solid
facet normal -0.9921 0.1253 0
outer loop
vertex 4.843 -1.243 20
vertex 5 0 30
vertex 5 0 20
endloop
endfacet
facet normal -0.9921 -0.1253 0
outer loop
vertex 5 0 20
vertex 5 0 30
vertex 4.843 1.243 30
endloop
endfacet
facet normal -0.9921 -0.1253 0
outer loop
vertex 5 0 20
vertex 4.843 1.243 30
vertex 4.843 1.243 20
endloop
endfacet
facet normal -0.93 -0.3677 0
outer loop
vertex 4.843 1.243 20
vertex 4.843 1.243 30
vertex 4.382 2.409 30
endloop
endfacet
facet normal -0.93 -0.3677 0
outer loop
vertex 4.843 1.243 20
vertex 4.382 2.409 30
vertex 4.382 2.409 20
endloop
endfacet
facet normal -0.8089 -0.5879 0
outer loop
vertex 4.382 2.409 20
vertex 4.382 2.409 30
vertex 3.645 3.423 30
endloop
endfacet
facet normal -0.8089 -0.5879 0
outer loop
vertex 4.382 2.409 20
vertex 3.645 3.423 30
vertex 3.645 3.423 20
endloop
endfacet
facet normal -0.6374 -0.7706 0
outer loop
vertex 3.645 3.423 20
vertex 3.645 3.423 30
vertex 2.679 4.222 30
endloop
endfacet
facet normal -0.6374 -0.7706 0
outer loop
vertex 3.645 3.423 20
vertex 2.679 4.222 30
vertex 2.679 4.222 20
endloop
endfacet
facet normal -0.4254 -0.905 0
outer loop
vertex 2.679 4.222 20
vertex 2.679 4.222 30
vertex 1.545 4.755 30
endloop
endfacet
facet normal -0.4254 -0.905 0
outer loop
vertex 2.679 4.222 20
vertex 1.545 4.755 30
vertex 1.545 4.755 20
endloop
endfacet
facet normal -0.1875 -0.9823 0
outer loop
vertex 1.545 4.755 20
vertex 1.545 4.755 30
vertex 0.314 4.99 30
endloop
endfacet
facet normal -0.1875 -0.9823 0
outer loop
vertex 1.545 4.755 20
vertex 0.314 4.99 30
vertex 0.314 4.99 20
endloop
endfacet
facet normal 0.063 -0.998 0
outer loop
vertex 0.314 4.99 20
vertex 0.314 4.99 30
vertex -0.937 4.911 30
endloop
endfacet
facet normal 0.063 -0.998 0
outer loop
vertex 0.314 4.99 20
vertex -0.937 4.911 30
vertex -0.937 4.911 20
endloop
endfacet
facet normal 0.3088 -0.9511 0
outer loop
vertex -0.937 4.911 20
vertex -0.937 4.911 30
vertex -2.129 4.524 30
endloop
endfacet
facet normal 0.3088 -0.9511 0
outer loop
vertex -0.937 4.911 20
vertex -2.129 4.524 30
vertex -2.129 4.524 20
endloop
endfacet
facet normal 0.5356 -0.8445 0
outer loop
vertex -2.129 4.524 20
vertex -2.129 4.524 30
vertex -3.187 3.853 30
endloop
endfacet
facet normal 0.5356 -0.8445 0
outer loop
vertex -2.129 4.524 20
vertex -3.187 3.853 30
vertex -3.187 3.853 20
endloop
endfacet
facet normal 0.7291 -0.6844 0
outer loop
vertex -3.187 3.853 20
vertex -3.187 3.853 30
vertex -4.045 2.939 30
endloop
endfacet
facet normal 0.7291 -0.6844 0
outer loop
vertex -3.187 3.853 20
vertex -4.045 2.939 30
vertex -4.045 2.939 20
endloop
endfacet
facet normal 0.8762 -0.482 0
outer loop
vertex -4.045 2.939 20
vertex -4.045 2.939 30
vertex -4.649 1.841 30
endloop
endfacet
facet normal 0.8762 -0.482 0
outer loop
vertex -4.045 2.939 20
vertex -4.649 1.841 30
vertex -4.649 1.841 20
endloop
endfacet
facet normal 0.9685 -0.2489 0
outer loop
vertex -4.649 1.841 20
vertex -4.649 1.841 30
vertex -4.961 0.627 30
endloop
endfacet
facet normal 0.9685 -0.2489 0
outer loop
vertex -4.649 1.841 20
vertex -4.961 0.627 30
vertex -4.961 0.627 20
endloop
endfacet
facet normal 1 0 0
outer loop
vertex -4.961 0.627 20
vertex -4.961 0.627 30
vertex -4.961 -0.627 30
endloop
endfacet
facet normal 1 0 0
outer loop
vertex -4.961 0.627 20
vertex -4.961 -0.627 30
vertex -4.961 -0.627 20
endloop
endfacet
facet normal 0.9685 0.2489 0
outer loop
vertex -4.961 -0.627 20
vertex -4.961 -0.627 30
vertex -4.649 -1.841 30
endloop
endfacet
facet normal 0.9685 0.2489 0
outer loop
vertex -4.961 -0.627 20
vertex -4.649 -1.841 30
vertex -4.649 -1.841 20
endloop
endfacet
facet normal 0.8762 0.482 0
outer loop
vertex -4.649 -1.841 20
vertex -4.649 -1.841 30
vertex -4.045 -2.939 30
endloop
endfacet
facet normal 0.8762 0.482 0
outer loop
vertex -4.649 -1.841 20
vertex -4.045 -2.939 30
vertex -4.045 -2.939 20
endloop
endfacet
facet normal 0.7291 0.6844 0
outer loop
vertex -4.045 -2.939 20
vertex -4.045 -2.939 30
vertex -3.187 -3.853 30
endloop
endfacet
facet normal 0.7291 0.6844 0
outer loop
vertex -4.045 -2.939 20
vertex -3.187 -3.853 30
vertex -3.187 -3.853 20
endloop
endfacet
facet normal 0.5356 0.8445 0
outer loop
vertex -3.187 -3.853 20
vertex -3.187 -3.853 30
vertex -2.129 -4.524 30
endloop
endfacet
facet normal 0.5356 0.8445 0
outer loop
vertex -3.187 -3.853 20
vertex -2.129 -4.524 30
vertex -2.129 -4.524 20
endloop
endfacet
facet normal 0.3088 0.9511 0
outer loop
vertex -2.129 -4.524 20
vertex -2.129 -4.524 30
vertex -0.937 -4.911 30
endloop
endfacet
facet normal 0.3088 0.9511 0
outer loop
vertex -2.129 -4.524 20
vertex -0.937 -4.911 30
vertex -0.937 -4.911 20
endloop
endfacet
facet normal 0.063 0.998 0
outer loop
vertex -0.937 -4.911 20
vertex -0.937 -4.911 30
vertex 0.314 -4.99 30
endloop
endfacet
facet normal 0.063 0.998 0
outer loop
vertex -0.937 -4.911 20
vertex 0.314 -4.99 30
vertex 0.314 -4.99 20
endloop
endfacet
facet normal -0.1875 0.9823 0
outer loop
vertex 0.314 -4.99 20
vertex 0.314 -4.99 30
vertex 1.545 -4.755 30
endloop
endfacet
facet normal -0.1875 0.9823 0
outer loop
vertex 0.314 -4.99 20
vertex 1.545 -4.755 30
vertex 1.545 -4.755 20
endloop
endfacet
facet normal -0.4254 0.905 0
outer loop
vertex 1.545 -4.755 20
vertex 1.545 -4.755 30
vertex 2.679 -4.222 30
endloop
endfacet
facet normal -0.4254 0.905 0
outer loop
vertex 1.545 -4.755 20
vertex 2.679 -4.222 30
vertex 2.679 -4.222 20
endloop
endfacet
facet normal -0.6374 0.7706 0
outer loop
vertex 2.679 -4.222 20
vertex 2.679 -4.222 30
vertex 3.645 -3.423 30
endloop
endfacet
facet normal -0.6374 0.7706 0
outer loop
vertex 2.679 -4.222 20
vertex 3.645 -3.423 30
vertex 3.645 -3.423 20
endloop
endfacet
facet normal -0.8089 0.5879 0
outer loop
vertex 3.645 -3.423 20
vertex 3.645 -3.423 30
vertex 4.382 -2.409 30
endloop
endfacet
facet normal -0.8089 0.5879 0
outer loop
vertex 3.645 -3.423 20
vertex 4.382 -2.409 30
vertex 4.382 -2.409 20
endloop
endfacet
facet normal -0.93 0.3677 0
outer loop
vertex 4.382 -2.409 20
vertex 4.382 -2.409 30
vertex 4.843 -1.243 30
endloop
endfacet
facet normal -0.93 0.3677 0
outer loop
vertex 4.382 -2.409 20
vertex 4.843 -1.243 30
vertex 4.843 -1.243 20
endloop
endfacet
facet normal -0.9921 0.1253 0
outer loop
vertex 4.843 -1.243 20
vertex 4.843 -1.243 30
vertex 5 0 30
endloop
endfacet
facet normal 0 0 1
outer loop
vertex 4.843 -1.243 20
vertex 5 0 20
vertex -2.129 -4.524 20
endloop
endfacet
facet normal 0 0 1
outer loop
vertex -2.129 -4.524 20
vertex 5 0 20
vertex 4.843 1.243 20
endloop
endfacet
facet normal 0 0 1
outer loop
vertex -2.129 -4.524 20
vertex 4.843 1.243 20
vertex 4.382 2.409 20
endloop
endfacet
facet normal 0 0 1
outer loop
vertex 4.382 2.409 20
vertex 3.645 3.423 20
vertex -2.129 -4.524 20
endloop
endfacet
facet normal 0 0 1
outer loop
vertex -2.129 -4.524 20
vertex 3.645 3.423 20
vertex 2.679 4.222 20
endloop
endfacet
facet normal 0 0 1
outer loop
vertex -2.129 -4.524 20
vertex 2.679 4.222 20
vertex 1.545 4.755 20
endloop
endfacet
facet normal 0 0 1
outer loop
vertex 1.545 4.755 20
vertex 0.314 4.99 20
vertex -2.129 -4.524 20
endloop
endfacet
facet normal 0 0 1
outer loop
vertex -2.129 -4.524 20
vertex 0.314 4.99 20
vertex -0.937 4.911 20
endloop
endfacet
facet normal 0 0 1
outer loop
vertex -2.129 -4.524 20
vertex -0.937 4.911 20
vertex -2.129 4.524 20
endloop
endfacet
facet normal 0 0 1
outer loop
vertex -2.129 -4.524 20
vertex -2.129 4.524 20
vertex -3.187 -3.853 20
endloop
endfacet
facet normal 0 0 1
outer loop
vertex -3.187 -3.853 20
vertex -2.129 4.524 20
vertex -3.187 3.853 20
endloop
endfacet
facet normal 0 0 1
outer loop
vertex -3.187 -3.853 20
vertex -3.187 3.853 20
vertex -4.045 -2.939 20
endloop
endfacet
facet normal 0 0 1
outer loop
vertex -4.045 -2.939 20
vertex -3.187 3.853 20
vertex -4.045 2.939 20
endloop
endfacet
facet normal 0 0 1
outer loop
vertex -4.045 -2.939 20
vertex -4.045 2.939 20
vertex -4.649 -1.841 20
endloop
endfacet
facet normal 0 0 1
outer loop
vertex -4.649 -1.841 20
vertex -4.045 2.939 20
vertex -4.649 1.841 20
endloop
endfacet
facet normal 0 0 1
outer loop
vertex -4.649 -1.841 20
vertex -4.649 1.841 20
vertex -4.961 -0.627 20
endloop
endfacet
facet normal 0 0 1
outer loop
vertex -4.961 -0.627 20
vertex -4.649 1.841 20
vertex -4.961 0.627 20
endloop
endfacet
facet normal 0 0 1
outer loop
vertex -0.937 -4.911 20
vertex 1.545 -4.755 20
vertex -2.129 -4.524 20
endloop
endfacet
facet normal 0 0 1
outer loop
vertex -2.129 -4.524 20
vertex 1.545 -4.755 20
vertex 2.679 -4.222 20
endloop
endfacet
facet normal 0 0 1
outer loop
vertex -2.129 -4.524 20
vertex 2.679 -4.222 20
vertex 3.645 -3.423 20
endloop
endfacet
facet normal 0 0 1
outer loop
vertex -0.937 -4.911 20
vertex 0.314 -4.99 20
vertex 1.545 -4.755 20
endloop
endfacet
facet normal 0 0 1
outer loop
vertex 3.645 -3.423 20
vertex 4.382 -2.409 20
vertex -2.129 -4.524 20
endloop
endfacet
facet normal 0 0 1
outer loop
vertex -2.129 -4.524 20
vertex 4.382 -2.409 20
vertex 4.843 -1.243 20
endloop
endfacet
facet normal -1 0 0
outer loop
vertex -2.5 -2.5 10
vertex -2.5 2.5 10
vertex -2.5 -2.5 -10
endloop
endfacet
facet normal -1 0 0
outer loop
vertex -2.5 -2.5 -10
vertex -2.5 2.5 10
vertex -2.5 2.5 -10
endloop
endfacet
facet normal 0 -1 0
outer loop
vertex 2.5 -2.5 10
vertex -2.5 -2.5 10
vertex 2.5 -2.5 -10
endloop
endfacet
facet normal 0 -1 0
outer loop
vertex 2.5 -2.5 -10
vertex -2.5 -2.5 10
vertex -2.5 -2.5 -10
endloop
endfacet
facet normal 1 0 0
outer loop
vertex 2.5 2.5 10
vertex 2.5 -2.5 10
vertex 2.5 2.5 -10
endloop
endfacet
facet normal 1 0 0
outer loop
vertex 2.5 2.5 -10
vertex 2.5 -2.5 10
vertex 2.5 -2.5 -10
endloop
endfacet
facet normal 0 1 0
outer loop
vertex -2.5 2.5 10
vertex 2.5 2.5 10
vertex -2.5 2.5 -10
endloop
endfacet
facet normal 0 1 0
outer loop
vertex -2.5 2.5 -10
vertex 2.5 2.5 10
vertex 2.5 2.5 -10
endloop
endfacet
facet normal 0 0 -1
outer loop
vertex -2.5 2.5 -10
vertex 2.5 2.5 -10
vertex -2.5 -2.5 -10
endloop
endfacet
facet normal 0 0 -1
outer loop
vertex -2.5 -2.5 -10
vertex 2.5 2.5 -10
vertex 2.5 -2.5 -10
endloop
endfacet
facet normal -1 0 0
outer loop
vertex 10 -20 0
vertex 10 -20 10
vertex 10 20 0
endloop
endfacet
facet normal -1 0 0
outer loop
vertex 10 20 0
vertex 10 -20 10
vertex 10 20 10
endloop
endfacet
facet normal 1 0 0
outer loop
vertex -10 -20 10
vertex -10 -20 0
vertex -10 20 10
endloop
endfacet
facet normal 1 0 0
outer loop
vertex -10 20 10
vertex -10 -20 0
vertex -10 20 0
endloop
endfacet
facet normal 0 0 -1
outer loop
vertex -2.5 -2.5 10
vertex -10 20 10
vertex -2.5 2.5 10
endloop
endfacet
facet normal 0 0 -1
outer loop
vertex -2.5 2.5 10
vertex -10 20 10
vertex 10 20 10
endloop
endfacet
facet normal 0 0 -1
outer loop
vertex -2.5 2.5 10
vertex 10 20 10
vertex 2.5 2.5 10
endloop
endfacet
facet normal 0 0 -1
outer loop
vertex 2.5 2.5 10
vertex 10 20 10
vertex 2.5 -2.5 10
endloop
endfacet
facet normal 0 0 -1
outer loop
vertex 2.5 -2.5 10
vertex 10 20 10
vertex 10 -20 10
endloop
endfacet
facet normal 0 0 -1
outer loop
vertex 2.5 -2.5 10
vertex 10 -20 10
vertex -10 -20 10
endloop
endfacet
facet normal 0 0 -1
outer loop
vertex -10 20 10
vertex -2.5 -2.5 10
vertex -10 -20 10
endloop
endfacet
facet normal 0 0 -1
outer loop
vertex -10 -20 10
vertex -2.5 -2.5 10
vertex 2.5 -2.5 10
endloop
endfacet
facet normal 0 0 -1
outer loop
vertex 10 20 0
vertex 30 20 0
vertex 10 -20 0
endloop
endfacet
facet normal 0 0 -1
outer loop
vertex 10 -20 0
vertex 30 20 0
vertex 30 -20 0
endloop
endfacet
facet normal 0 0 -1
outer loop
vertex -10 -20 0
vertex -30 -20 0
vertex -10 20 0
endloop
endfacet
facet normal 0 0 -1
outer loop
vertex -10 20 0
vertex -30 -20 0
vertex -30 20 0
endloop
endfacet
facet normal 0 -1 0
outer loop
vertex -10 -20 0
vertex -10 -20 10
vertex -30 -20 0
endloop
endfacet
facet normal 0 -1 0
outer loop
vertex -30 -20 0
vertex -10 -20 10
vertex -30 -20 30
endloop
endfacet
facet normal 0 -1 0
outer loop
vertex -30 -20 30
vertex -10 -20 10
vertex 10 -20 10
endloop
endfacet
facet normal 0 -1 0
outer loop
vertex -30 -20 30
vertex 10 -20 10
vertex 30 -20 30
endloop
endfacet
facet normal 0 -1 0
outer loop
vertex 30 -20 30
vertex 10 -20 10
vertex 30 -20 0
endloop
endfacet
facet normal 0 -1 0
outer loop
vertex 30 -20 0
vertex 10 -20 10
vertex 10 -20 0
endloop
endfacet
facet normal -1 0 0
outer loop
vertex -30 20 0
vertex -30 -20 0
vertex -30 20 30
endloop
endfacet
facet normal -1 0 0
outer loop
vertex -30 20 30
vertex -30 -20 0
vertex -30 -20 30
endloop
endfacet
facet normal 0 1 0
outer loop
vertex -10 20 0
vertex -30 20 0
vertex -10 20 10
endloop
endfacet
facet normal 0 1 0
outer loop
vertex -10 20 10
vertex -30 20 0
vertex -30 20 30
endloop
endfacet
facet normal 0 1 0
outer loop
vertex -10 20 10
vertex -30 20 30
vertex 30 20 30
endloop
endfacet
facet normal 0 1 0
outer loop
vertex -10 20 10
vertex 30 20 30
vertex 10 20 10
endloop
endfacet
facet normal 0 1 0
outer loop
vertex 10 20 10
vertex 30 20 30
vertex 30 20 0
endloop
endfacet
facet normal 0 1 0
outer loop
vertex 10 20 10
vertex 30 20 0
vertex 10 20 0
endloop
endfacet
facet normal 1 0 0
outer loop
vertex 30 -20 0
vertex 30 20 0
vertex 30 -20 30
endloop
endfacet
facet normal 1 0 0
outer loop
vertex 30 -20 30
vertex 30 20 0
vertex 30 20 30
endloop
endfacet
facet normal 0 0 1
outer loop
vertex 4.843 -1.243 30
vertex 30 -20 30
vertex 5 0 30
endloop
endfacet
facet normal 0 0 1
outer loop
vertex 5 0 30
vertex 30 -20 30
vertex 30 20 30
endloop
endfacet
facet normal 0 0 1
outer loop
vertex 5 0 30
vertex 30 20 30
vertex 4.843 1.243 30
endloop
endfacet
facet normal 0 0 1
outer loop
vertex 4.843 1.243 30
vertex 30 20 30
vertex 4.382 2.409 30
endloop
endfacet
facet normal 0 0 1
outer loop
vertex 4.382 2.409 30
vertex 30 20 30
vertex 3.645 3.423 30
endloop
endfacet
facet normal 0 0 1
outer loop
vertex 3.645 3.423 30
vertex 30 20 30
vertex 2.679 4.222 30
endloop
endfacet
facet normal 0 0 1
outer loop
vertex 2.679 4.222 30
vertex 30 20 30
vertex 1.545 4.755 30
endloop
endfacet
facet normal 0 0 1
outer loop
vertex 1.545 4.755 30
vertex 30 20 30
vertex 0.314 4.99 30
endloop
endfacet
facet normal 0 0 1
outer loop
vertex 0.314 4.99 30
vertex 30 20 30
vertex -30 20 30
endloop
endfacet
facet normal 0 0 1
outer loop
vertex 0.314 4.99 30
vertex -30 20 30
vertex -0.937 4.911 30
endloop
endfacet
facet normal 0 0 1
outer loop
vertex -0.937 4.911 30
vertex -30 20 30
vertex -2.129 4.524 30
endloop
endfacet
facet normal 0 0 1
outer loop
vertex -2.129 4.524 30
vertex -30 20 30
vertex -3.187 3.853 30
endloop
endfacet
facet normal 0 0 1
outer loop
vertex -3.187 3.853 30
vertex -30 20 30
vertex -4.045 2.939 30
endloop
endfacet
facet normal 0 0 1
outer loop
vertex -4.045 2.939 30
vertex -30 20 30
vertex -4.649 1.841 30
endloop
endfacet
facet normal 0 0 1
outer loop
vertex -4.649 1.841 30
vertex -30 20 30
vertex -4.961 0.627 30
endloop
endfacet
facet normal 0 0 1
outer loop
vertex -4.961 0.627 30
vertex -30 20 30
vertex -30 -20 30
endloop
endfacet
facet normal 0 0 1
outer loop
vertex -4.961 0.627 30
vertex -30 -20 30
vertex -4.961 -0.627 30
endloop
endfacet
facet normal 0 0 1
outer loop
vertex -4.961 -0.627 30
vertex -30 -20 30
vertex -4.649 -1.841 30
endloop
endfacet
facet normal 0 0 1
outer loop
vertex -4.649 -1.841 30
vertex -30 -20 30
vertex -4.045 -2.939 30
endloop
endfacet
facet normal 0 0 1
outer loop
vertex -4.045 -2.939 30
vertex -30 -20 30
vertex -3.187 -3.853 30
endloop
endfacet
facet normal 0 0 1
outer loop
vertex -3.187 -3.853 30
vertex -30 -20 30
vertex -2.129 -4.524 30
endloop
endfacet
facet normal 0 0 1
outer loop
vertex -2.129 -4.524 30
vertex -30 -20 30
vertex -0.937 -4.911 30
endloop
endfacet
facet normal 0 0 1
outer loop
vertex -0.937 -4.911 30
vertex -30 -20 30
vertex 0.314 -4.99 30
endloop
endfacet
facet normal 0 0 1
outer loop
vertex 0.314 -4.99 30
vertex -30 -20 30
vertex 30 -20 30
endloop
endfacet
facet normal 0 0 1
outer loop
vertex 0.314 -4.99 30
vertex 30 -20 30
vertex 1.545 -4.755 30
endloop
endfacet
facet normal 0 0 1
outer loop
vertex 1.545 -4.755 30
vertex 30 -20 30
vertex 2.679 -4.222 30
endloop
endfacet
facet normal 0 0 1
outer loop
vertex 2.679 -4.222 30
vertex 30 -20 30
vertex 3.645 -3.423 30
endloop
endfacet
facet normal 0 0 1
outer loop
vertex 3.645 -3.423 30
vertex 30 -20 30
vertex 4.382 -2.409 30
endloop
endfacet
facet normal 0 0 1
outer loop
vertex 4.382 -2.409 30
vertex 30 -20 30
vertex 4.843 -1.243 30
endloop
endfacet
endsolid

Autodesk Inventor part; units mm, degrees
ref_plane "YZ Plane" through (0, 0, 0) normal (1, 0, 0) x (0, 1, 0)
ref_plane "XZ Plane" through (0, 0, 0) normal (0, 1, 0) x (-1, 0, 0)
ref_plane "XY Plane" through (0, 0, 0) normal (0, 0, 1) x (1, 0, 0)
sketch "Sketch1" plane through (0, 0, 0) normal (0, 0, 1) x (1, 0, 0)
  line L0 (-30, 20) -> (30, 20)
  line L1 (30, 20) -> (30, -20)
  line L2 (30, -20) -> (-30, -20)
  line L3 (-30, -20) -> (-30, 20)
  point P0 (0, 0)
  dimension "d0" = 60
  dimension "d1" = 30
  dimension "d2" = 40
  dimension "d3" = 20
extrude "Extrusion1" add sketch "Sketch1" along normal blind 30
sketch "Sketch3" plane through (-30, 20, 0) normal (0, 1, 0) x (1, 0, 0)
  line L0 (0, 0) -> (60, 0) projected
  line L1 (20, 0) -> (20, -10)
  line L2 (20, -10) -> (40, -10)
  line L3 (40, -10) -> (40, 0)
  line L4 (20, 0) -> (40, 0)
  point P0 (30, 0)
  point P1 (30, 0)
  dimension "d9" = 20
  dimension "d10" = 10
  dimension "d11" = 10
extrude "Extrusion3" cut sketch "Sketch3" against normal through all
sketch "Sketch5" plane through (10, 20, 10) normal (0, 0, -1) x (-1, 0, 0)
  line L0 (12.5, -22.5) -> (7.5, -22.5)
  line L1 (7.5, -22.5) -> (7.5, -17.5)
  line L2 (7.5, -17.5) -> (12.5, -17.5)
  line L3 (12.5, -17.5) -> (12.5, -22.5)
  point P0 (10, -20)
  point P1 (7.5, -20)
  dimension "d17" = 2.5
  dimension "d18" = 5
  dimension "d19" = 5
  dimension "d20" = 2.5
extrude "Extrusion5" add sketch "Sketch5" along normal blind 20
sketch "Sketch6" plane through (0, 0, 30) normal (0, 0, 1) x (1, 0, 0)
  circle A0 centre (0, 0) radius 5
  dimension "d23" = 10
extrude "Extrusion6" cut sketch "Sketch6" against normal blind 10
properties part number "trzymaczka"
